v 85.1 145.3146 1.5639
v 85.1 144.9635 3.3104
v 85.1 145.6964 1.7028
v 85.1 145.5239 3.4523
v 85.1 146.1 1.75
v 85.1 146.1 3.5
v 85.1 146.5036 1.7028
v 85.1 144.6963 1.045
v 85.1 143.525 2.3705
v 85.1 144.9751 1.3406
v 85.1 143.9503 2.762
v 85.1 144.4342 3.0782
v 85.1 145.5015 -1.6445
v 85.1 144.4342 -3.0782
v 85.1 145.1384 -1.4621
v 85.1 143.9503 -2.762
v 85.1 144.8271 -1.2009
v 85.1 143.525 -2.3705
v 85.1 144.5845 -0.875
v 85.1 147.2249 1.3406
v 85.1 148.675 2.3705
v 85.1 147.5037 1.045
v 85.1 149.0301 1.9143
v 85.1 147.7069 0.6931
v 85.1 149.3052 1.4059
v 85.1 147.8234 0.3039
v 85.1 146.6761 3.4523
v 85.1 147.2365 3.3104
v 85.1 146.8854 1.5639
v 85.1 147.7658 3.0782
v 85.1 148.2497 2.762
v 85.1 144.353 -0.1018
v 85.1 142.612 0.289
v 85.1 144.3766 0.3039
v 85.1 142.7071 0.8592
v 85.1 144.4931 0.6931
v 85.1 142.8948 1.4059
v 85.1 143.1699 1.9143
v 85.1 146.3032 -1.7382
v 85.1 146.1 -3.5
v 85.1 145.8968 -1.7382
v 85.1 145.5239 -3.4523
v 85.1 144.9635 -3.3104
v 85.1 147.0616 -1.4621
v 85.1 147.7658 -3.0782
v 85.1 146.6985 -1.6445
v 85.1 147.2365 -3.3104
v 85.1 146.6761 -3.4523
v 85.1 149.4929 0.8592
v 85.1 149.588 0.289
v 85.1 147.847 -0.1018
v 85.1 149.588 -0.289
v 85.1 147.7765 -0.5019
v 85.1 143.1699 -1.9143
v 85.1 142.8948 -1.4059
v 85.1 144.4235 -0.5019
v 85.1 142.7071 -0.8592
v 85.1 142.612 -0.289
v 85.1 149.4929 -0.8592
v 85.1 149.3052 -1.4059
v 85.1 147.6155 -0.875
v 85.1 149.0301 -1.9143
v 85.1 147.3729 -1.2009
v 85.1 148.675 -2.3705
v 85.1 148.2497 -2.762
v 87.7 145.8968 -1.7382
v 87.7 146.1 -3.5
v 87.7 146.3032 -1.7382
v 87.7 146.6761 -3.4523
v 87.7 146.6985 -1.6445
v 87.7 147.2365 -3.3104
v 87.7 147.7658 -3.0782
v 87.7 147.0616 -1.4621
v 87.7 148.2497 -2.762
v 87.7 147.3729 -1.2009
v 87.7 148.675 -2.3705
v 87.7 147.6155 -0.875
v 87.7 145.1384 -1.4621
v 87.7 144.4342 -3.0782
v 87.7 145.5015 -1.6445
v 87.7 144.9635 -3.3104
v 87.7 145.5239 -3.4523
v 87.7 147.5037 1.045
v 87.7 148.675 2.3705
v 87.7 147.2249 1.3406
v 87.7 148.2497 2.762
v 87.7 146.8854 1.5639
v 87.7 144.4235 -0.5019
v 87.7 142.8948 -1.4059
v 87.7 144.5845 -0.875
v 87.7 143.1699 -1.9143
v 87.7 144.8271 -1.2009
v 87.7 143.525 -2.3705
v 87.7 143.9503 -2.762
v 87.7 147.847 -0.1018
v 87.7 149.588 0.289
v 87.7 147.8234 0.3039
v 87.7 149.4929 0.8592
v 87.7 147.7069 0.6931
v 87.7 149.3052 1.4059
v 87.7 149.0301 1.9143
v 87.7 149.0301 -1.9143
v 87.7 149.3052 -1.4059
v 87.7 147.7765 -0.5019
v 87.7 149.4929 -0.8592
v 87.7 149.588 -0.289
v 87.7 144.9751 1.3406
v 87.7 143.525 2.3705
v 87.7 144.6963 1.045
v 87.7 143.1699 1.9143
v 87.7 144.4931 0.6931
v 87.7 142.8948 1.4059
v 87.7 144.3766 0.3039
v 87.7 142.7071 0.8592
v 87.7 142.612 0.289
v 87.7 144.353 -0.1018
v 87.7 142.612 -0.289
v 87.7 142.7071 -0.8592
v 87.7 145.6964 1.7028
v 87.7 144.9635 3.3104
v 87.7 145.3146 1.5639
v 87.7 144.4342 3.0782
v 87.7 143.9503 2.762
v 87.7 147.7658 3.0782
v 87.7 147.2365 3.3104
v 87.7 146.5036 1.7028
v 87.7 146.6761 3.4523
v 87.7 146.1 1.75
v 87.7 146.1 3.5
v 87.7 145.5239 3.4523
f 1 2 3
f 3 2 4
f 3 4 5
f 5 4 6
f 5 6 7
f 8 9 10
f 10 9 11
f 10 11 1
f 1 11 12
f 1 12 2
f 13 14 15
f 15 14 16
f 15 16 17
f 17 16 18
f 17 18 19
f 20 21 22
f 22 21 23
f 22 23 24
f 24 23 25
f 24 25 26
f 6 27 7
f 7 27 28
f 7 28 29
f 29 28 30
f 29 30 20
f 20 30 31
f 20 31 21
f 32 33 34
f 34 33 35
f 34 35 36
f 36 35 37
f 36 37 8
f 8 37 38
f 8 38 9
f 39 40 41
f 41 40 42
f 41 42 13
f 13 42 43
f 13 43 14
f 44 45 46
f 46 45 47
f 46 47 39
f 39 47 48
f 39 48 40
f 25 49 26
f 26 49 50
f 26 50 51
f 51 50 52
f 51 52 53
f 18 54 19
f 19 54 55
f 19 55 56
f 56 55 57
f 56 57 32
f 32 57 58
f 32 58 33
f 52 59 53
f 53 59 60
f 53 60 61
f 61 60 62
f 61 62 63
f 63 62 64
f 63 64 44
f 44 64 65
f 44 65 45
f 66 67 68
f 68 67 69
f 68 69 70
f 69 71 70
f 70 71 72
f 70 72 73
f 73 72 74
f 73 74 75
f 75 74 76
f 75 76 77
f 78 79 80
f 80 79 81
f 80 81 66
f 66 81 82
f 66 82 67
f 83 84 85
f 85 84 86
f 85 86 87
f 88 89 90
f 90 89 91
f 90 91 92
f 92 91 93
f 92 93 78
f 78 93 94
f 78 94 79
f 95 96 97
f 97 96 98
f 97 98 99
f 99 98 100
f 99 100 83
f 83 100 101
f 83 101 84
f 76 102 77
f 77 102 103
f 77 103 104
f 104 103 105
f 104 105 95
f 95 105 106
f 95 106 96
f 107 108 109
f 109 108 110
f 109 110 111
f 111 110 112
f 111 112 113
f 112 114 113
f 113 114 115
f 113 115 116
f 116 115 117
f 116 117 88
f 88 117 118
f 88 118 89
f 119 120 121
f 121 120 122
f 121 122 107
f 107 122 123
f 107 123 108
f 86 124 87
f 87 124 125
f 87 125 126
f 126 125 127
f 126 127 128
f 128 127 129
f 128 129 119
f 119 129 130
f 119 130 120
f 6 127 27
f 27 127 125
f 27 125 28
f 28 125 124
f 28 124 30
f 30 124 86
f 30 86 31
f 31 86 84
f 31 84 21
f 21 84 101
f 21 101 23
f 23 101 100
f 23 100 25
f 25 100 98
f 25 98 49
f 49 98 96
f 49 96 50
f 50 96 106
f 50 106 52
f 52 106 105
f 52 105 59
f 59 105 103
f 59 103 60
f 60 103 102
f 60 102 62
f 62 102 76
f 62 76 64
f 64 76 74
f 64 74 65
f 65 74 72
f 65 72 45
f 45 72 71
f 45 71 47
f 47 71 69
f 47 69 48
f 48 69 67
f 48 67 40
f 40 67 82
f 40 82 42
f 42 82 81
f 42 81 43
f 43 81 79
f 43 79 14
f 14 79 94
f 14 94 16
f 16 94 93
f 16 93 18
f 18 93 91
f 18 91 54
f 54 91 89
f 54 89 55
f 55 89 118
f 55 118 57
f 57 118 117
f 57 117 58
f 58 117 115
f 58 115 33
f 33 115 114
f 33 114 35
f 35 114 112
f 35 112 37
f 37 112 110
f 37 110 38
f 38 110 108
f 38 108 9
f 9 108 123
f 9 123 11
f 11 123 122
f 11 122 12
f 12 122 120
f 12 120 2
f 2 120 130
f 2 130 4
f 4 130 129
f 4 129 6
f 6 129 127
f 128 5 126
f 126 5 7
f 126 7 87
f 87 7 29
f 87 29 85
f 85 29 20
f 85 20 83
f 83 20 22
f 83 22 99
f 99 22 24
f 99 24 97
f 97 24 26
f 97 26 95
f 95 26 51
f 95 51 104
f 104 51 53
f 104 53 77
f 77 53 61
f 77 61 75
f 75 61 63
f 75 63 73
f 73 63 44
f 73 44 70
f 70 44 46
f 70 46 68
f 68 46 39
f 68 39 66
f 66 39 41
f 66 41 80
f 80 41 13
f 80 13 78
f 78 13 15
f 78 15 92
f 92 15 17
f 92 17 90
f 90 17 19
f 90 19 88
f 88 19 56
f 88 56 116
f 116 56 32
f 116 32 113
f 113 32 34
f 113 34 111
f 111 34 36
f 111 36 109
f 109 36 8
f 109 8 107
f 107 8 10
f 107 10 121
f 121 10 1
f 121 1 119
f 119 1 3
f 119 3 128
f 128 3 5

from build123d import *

# Parameters (mm, degrees)
SKETCH15_W   = 26
SKETCH15_H   = 35
SKETCH16_W   = 26
SKETCH16_H   = 17.5
SCALE1_SCALE = 0.1


with BuildPart() as part:
    # Sketch15 → Revolve1 (revolve)
    with BuildSketch(Plane.XY, mode=Mode.PRIVATE) as revolve1_sk:
        with Locations((864, 1478.5)):
            Rectangle(SKETCH15_W, SKETCH15_H)
    revolve(revolve1_sk.sketch.rotate(Axis((851, 1461, 0), (1, 0, 0)), 90), axis=Axis((851, 1461, 0), (1, 0, 0)))

    # Sketch16 → Cut-Revolve1 (revolve, cut)
    with BuildSketch(Plane.XY, mode=Mode.PRIVATE) as cut_revolve1_sk:
        with Locations((864, 1469.75)):
            Rectangle(SKETCH16_W, SKETCH16_H)
    revolve(cut_revolve1_sk.sketch.rotate(Axis((851, 1461, 0), (1, 0, 0)), 90), axis=Axis((851, 1461, 0), (1, 0, 0)), mode=Mode.SUBTRACT)


with BuildPart() as part_1:
    # Scale1: scaled about (0, 0, 0)
    add(part.part.scale(SCALE1_SCALE))


solid = part_1.part
